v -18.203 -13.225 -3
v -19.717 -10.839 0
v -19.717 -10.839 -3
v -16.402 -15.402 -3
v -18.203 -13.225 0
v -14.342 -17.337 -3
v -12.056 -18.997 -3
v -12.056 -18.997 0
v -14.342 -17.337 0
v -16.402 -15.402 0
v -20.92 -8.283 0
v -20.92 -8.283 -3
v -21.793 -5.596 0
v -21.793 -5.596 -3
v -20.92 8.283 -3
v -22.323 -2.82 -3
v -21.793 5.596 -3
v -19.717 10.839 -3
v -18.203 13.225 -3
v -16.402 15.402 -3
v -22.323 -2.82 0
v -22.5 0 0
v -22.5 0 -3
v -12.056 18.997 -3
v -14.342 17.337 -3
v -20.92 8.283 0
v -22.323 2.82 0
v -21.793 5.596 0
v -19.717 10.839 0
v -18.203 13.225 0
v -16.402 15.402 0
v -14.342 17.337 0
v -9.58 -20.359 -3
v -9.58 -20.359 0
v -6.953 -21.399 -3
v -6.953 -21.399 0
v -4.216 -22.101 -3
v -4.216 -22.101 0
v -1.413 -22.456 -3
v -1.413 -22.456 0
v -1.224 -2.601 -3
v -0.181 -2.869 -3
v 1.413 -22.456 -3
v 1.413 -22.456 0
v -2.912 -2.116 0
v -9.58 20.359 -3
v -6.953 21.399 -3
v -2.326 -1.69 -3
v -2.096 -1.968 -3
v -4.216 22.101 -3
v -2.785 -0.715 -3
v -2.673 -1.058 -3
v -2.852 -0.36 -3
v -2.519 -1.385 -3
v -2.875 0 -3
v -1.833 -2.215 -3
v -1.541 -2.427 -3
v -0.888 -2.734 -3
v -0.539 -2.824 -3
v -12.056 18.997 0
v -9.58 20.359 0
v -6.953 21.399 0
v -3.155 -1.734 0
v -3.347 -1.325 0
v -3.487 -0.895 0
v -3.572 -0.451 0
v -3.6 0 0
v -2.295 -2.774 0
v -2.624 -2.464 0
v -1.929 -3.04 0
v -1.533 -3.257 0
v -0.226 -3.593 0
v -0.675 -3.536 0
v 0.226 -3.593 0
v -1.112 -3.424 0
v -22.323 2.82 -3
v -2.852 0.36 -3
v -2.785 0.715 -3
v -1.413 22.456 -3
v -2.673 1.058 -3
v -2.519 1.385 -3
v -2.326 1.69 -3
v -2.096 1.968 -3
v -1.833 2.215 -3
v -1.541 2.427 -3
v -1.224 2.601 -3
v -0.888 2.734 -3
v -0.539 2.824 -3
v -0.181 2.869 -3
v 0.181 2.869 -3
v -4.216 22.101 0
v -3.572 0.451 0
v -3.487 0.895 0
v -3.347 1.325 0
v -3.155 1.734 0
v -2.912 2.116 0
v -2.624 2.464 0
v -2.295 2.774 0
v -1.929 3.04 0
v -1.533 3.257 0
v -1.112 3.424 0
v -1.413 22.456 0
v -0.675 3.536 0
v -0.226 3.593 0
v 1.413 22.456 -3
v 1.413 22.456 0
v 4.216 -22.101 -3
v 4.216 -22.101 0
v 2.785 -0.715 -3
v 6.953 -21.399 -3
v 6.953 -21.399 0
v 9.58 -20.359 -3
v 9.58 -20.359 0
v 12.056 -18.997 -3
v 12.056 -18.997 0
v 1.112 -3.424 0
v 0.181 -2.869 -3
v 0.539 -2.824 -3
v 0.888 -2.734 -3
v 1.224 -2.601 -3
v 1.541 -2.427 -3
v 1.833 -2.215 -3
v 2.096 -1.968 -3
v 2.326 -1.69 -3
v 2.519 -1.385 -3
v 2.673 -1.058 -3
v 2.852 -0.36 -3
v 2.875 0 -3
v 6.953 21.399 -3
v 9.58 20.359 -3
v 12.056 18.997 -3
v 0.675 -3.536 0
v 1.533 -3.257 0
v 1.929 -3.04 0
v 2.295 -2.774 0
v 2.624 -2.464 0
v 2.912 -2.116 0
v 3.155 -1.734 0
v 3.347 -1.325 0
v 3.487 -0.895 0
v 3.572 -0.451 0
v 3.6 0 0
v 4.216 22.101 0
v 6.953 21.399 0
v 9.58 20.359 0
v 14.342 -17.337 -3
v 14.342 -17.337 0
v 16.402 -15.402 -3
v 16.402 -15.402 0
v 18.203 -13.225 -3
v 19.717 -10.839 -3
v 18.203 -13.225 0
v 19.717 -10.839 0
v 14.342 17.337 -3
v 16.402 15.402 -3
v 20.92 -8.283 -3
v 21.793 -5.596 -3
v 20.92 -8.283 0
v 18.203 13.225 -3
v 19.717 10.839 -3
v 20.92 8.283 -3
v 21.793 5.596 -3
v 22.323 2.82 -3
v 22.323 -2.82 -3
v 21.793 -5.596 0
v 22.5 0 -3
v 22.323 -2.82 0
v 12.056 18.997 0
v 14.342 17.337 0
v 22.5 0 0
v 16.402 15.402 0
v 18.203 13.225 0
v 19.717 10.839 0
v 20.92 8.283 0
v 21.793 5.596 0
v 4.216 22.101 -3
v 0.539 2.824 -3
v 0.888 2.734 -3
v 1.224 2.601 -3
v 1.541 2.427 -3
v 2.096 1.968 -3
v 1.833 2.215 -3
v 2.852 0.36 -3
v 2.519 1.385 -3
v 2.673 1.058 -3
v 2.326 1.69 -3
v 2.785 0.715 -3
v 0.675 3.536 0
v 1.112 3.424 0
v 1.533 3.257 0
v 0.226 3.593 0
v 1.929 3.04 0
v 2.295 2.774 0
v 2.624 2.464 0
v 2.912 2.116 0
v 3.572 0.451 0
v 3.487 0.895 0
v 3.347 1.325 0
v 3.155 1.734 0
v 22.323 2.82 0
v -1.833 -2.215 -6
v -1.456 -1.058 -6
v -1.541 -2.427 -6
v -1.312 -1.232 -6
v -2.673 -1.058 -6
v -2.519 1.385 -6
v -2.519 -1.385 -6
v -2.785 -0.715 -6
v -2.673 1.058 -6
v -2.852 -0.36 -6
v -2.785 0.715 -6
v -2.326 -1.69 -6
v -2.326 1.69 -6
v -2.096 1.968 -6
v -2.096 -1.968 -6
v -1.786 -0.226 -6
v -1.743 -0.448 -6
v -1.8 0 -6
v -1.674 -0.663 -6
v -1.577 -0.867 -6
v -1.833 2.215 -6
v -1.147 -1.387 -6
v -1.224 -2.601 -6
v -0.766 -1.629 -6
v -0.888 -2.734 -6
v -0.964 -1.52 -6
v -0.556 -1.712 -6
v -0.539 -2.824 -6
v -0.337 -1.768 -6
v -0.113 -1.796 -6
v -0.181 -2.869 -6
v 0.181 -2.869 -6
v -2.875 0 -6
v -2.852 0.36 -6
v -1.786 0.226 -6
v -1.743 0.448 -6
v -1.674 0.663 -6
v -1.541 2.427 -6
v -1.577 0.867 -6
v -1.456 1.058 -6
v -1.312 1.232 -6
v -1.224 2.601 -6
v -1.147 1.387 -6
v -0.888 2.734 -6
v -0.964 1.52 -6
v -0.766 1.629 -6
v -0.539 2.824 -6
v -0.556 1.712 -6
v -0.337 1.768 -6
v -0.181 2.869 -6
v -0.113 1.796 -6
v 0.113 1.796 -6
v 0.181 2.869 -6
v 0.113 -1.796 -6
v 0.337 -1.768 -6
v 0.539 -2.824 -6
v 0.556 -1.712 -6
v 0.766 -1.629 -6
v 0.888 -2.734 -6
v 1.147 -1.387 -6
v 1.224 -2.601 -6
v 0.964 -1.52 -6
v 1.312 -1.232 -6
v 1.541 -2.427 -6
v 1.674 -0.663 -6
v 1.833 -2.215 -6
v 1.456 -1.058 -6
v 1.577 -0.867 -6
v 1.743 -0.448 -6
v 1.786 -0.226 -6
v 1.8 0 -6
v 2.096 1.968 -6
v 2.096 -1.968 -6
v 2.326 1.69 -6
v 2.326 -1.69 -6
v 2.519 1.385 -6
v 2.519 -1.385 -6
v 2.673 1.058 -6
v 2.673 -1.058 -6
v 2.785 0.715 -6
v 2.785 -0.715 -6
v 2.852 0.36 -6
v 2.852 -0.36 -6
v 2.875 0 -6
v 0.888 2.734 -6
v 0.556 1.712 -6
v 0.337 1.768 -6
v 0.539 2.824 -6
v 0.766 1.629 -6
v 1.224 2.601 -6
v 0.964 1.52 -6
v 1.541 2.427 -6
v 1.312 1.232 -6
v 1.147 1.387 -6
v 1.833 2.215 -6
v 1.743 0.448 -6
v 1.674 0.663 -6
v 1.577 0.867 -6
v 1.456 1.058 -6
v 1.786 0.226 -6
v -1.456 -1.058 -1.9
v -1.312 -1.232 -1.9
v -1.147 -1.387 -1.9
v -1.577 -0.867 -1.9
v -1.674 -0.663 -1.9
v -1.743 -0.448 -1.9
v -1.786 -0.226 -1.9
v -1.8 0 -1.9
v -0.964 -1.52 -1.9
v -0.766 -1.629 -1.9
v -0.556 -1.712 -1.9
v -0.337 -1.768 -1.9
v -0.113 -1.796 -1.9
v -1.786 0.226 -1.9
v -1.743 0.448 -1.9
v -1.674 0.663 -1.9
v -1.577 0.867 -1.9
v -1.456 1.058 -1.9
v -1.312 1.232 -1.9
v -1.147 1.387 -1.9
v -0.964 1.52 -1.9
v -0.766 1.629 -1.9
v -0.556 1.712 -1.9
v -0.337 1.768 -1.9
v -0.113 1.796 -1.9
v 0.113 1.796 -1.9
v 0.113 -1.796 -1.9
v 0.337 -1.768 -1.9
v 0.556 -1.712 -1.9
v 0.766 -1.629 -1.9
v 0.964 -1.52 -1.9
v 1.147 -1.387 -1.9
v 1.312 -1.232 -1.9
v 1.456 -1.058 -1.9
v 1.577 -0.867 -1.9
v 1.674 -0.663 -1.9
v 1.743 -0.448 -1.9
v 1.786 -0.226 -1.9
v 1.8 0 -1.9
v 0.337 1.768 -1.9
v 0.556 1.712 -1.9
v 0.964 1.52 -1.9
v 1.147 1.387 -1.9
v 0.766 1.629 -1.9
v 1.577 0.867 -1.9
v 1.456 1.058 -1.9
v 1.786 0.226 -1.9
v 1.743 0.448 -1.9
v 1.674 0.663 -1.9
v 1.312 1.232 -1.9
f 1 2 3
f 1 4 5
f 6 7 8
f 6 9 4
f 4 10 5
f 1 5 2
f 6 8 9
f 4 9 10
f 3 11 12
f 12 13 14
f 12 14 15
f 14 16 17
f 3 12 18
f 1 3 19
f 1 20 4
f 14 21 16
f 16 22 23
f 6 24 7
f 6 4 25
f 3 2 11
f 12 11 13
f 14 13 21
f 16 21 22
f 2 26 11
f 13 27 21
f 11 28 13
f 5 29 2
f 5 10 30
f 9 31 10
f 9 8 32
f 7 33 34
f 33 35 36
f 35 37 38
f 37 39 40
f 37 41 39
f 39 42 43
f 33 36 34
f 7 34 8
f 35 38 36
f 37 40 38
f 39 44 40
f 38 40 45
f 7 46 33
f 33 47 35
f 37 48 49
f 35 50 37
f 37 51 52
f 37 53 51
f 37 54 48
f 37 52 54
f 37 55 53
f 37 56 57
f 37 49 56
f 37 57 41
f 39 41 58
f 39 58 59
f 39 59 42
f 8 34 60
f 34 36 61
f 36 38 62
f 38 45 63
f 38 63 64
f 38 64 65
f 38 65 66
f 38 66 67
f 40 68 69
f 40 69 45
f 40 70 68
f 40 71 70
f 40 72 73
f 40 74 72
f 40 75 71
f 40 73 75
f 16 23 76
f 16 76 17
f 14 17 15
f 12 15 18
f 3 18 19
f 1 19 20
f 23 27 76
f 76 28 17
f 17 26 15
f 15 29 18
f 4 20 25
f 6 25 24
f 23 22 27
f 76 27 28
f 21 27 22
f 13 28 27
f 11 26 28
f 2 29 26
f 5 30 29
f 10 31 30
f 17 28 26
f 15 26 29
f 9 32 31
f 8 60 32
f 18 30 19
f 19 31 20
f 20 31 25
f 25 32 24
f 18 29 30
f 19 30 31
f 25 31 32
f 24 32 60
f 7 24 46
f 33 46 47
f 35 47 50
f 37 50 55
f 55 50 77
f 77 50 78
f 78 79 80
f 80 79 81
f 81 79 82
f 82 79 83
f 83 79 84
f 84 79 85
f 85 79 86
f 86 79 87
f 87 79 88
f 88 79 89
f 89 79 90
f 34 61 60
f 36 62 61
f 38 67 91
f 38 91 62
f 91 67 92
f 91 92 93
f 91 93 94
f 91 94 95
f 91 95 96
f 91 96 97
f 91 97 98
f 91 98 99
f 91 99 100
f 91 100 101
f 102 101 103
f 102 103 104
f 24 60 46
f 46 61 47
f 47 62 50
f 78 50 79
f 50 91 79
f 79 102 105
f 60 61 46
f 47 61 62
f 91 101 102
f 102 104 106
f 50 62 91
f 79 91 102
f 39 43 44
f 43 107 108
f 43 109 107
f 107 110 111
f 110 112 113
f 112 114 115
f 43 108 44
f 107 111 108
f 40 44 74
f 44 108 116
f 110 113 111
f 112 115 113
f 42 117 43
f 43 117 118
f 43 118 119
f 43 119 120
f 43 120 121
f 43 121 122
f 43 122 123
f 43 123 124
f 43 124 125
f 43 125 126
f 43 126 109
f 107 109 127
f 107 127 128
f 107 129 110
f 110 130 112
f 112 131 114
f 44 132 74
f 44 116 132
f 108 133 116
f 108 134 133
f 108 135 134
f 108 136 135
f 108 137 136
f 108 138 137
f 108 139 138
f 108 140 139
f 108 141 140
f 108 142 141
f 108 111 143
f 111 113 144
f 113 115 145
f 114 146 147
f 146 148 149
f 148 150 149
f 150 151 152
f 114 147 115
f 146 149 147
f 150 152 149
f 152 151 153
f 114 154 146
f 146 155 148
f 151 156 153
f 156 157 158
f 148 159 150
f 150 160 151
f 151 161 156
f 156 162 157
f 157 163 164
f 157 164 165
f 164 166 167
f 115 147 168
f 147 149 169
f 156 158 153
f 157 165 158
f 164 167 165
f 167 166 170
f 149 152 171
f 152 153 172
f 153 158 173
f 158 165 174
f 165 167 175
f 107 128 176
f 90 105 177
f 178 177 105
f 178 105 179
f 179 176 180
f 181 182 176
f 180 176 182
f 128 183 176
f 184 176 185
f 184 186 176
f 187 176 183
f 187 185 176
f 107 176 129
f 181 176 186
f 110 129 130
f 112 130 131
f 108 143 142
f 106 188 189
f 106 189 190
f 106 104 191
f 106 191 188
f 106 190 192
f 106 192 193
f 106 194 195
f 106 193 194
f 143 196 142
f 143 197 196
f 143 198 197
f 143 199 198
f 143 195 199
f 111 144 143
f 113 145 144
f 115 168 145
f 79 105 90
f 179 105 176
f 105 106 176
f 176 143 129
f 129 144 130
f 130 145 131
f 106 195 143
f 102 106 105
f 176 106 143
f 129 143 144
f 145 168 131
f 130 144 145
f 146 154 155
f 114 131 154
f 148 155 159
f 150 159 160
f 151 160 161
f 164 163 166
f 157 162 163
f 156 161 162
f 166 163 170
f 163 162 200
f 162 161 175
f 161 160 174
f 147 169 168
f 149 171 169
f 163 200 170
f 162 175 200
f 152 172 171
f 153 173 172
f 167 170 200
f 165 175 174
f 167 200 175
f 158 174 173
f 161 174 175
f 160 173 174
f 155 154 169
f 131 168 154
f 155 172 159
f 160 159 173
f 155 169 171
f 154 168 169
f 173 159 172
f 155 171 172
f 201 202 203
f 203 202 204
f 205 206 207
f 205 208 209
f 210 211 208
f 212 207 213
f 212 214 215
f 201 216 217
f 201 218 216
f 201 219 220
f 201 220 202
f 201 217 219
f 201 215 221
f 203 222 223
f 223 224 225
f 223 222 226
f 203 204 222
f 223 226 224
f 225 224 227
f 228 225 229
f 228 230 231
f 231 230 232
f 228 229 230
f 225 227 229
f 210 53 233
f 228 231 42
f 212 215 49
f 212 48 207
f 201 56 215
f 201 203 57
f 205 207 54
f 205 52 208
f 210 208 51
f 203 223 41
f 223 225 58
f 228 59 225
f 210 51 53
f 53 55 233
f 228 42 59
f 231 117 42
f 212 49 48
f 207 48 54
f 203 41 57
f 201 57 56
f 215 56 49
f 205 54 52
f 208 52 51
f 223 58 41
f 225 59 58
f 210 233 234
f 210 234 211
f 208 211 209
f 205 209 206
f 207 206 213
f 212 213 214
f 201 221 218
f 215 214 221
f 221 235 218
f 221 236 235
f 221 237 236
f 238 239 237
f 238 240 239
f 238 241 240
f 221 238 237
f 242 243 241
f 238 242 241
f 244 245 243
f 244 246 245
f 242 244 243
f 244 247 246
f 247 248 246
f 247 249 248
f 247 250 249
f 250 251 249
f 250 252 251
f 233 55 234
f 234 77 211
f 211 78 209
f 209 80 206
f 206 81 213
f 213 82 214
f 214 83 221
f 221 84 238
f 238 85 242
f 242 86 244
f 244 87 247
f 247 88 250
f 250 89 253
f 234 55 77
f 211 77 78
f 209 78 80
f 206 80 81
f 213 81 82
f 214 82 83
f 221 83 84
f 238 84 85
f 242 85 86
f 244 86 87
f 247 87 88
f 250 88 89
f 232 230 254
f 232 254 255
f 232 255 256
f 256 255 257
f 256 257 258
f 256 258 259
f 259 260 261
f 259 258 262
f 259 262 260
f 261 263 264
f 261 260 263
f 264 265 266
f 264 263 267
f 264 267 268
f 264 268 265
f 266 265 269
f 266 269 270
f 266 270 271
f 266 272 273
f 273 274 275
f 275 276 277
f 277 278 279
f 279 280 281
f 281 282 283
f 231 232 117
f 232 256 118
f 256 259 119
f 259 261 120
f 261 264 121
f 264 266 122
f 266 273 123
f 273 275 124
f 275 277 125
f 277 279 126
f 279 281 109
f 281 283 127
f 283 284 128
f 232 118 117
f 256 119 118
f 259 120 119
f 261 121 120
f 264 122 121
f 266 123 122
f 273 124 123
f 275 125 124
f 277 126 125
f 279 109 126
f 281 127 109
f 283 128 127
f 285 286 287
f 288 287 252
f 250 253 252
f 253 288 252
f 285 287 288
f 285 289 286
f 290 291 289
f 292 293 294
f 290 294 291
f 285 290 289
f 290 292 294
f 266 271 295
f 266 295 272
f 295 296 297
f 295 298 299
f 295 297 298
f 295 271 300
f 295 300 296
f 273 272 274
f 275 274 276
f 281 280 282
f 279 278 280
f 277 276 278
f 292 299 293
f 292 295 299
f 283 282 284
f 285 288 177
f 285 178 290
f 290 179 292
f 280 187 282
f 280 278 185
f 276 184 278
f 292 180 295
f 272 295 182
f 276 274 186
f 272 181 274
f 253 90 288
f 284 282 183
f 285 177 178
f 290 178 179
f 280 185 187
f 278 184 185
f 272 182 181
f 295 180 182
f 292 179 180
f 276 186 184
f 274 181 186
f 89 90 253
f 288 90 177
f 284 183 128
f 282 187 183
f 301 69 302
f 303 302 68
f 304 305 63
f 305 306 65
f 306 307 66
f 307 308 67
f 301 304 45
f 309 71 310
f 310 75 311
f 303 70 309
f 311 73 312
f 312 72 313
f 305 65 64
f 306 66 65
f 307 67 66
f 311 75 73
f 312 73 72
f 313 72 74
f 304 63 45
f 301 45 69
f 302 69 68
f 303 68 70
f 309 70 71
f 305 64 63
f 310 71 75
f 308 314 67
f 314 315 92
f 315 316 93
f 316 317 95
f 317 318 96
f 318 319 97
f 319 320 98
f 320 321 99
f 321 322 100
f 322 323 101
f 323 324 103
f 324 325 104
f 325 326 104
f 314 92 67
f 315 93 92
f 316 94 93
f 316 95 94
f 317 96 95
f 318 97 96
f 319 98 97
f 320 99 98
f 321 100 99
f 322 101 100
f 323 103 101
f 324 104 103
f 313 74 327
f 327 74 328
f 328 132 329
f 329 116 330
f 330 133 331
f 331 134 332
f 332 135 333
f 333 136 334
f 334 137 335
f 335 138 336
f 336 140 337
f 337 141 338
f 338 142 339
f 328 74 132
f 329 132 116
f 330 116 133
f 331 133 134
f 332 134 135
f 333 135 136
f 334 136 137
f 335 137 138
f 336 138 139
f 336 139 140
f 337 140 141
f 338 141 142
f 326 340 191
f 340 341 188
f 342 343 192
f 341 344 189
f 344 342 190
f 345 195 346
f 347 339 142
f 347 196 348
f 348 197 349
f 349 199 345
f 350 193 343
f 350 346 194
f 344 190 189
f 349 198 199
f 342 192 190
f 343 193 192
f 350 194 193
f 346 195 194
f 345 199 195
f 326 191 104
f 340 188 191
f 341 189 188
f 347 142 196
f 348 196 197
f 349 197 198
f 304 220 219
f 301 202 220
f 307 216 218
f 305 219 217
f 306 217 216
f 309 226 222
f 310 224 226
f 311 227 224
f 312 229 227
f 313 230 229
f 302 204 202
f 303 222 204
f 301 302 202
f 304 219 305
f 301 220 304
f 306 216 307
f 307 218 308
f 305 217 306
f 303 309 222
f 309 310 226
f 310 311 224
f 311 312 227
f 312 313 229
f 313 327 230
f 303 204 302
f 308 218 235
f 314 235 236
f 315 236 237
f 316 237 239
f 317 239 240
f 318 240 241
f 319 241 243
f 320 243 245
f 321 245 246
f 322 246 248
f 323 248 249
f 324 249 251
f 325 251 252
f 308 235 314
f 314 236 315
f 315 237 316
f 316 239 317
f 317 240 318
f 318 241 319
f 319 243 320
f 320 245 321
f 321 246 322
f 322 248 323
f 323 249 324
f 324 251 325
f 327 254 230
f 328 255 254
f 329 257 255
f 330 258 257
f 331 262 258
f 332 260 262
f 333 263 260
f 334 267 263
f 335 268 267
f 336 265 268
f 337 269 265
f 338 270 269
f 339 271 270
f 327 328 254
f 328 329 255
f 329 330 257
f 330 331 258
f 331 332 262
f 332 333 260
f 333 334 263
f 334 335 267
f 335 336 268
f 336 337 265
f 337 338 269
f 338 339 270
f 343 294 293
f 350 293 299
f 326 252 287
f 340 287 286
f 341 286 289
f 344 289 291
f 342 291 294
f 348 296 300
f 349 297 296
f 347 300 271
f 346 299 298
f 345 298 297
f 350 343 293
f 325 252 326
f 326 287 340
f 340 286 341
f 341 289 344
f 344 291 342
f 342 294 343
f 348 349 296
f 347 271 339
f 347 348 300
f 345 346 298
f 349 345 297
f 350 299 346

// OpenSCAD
$fn = 50;


difference() {
	union() {
		translate(v = [0, 0, -3.0000000000]) {
			cylinder(h = 3, r = 22.5000000000);
		}
		#translate(v = [0, 0, -6.0000000000]) {
			cylinder(h = 6, r = 2.8750000000);
		}
	}
	union() {
		translate(v = [0, 0, 0]) {
			rotate(a = [0, 0, 0]) {
				difference() {
					union() {
						translate(v = [0, 0, -6.0000000000]) {
							cylinder(h = 6, r = 1.5000000000);
						}
						translate(v = [0, 0, -1.9000000000]) {
							cylinder(h = 1.9000000000, r1 = 1.8000000000, r2 = 3.6000000000);
						}
						translate(v = [0, 0, -6.0000000000]) {
							cylinder(h = 6, r = 1.8000000000);
						}
						translate(v = [0, 0, -6.0000000000]) {
							cylinder(h = 6, r = 1.5000000000);
						}
					}
					union();
				}
			}
		}
	}
}
